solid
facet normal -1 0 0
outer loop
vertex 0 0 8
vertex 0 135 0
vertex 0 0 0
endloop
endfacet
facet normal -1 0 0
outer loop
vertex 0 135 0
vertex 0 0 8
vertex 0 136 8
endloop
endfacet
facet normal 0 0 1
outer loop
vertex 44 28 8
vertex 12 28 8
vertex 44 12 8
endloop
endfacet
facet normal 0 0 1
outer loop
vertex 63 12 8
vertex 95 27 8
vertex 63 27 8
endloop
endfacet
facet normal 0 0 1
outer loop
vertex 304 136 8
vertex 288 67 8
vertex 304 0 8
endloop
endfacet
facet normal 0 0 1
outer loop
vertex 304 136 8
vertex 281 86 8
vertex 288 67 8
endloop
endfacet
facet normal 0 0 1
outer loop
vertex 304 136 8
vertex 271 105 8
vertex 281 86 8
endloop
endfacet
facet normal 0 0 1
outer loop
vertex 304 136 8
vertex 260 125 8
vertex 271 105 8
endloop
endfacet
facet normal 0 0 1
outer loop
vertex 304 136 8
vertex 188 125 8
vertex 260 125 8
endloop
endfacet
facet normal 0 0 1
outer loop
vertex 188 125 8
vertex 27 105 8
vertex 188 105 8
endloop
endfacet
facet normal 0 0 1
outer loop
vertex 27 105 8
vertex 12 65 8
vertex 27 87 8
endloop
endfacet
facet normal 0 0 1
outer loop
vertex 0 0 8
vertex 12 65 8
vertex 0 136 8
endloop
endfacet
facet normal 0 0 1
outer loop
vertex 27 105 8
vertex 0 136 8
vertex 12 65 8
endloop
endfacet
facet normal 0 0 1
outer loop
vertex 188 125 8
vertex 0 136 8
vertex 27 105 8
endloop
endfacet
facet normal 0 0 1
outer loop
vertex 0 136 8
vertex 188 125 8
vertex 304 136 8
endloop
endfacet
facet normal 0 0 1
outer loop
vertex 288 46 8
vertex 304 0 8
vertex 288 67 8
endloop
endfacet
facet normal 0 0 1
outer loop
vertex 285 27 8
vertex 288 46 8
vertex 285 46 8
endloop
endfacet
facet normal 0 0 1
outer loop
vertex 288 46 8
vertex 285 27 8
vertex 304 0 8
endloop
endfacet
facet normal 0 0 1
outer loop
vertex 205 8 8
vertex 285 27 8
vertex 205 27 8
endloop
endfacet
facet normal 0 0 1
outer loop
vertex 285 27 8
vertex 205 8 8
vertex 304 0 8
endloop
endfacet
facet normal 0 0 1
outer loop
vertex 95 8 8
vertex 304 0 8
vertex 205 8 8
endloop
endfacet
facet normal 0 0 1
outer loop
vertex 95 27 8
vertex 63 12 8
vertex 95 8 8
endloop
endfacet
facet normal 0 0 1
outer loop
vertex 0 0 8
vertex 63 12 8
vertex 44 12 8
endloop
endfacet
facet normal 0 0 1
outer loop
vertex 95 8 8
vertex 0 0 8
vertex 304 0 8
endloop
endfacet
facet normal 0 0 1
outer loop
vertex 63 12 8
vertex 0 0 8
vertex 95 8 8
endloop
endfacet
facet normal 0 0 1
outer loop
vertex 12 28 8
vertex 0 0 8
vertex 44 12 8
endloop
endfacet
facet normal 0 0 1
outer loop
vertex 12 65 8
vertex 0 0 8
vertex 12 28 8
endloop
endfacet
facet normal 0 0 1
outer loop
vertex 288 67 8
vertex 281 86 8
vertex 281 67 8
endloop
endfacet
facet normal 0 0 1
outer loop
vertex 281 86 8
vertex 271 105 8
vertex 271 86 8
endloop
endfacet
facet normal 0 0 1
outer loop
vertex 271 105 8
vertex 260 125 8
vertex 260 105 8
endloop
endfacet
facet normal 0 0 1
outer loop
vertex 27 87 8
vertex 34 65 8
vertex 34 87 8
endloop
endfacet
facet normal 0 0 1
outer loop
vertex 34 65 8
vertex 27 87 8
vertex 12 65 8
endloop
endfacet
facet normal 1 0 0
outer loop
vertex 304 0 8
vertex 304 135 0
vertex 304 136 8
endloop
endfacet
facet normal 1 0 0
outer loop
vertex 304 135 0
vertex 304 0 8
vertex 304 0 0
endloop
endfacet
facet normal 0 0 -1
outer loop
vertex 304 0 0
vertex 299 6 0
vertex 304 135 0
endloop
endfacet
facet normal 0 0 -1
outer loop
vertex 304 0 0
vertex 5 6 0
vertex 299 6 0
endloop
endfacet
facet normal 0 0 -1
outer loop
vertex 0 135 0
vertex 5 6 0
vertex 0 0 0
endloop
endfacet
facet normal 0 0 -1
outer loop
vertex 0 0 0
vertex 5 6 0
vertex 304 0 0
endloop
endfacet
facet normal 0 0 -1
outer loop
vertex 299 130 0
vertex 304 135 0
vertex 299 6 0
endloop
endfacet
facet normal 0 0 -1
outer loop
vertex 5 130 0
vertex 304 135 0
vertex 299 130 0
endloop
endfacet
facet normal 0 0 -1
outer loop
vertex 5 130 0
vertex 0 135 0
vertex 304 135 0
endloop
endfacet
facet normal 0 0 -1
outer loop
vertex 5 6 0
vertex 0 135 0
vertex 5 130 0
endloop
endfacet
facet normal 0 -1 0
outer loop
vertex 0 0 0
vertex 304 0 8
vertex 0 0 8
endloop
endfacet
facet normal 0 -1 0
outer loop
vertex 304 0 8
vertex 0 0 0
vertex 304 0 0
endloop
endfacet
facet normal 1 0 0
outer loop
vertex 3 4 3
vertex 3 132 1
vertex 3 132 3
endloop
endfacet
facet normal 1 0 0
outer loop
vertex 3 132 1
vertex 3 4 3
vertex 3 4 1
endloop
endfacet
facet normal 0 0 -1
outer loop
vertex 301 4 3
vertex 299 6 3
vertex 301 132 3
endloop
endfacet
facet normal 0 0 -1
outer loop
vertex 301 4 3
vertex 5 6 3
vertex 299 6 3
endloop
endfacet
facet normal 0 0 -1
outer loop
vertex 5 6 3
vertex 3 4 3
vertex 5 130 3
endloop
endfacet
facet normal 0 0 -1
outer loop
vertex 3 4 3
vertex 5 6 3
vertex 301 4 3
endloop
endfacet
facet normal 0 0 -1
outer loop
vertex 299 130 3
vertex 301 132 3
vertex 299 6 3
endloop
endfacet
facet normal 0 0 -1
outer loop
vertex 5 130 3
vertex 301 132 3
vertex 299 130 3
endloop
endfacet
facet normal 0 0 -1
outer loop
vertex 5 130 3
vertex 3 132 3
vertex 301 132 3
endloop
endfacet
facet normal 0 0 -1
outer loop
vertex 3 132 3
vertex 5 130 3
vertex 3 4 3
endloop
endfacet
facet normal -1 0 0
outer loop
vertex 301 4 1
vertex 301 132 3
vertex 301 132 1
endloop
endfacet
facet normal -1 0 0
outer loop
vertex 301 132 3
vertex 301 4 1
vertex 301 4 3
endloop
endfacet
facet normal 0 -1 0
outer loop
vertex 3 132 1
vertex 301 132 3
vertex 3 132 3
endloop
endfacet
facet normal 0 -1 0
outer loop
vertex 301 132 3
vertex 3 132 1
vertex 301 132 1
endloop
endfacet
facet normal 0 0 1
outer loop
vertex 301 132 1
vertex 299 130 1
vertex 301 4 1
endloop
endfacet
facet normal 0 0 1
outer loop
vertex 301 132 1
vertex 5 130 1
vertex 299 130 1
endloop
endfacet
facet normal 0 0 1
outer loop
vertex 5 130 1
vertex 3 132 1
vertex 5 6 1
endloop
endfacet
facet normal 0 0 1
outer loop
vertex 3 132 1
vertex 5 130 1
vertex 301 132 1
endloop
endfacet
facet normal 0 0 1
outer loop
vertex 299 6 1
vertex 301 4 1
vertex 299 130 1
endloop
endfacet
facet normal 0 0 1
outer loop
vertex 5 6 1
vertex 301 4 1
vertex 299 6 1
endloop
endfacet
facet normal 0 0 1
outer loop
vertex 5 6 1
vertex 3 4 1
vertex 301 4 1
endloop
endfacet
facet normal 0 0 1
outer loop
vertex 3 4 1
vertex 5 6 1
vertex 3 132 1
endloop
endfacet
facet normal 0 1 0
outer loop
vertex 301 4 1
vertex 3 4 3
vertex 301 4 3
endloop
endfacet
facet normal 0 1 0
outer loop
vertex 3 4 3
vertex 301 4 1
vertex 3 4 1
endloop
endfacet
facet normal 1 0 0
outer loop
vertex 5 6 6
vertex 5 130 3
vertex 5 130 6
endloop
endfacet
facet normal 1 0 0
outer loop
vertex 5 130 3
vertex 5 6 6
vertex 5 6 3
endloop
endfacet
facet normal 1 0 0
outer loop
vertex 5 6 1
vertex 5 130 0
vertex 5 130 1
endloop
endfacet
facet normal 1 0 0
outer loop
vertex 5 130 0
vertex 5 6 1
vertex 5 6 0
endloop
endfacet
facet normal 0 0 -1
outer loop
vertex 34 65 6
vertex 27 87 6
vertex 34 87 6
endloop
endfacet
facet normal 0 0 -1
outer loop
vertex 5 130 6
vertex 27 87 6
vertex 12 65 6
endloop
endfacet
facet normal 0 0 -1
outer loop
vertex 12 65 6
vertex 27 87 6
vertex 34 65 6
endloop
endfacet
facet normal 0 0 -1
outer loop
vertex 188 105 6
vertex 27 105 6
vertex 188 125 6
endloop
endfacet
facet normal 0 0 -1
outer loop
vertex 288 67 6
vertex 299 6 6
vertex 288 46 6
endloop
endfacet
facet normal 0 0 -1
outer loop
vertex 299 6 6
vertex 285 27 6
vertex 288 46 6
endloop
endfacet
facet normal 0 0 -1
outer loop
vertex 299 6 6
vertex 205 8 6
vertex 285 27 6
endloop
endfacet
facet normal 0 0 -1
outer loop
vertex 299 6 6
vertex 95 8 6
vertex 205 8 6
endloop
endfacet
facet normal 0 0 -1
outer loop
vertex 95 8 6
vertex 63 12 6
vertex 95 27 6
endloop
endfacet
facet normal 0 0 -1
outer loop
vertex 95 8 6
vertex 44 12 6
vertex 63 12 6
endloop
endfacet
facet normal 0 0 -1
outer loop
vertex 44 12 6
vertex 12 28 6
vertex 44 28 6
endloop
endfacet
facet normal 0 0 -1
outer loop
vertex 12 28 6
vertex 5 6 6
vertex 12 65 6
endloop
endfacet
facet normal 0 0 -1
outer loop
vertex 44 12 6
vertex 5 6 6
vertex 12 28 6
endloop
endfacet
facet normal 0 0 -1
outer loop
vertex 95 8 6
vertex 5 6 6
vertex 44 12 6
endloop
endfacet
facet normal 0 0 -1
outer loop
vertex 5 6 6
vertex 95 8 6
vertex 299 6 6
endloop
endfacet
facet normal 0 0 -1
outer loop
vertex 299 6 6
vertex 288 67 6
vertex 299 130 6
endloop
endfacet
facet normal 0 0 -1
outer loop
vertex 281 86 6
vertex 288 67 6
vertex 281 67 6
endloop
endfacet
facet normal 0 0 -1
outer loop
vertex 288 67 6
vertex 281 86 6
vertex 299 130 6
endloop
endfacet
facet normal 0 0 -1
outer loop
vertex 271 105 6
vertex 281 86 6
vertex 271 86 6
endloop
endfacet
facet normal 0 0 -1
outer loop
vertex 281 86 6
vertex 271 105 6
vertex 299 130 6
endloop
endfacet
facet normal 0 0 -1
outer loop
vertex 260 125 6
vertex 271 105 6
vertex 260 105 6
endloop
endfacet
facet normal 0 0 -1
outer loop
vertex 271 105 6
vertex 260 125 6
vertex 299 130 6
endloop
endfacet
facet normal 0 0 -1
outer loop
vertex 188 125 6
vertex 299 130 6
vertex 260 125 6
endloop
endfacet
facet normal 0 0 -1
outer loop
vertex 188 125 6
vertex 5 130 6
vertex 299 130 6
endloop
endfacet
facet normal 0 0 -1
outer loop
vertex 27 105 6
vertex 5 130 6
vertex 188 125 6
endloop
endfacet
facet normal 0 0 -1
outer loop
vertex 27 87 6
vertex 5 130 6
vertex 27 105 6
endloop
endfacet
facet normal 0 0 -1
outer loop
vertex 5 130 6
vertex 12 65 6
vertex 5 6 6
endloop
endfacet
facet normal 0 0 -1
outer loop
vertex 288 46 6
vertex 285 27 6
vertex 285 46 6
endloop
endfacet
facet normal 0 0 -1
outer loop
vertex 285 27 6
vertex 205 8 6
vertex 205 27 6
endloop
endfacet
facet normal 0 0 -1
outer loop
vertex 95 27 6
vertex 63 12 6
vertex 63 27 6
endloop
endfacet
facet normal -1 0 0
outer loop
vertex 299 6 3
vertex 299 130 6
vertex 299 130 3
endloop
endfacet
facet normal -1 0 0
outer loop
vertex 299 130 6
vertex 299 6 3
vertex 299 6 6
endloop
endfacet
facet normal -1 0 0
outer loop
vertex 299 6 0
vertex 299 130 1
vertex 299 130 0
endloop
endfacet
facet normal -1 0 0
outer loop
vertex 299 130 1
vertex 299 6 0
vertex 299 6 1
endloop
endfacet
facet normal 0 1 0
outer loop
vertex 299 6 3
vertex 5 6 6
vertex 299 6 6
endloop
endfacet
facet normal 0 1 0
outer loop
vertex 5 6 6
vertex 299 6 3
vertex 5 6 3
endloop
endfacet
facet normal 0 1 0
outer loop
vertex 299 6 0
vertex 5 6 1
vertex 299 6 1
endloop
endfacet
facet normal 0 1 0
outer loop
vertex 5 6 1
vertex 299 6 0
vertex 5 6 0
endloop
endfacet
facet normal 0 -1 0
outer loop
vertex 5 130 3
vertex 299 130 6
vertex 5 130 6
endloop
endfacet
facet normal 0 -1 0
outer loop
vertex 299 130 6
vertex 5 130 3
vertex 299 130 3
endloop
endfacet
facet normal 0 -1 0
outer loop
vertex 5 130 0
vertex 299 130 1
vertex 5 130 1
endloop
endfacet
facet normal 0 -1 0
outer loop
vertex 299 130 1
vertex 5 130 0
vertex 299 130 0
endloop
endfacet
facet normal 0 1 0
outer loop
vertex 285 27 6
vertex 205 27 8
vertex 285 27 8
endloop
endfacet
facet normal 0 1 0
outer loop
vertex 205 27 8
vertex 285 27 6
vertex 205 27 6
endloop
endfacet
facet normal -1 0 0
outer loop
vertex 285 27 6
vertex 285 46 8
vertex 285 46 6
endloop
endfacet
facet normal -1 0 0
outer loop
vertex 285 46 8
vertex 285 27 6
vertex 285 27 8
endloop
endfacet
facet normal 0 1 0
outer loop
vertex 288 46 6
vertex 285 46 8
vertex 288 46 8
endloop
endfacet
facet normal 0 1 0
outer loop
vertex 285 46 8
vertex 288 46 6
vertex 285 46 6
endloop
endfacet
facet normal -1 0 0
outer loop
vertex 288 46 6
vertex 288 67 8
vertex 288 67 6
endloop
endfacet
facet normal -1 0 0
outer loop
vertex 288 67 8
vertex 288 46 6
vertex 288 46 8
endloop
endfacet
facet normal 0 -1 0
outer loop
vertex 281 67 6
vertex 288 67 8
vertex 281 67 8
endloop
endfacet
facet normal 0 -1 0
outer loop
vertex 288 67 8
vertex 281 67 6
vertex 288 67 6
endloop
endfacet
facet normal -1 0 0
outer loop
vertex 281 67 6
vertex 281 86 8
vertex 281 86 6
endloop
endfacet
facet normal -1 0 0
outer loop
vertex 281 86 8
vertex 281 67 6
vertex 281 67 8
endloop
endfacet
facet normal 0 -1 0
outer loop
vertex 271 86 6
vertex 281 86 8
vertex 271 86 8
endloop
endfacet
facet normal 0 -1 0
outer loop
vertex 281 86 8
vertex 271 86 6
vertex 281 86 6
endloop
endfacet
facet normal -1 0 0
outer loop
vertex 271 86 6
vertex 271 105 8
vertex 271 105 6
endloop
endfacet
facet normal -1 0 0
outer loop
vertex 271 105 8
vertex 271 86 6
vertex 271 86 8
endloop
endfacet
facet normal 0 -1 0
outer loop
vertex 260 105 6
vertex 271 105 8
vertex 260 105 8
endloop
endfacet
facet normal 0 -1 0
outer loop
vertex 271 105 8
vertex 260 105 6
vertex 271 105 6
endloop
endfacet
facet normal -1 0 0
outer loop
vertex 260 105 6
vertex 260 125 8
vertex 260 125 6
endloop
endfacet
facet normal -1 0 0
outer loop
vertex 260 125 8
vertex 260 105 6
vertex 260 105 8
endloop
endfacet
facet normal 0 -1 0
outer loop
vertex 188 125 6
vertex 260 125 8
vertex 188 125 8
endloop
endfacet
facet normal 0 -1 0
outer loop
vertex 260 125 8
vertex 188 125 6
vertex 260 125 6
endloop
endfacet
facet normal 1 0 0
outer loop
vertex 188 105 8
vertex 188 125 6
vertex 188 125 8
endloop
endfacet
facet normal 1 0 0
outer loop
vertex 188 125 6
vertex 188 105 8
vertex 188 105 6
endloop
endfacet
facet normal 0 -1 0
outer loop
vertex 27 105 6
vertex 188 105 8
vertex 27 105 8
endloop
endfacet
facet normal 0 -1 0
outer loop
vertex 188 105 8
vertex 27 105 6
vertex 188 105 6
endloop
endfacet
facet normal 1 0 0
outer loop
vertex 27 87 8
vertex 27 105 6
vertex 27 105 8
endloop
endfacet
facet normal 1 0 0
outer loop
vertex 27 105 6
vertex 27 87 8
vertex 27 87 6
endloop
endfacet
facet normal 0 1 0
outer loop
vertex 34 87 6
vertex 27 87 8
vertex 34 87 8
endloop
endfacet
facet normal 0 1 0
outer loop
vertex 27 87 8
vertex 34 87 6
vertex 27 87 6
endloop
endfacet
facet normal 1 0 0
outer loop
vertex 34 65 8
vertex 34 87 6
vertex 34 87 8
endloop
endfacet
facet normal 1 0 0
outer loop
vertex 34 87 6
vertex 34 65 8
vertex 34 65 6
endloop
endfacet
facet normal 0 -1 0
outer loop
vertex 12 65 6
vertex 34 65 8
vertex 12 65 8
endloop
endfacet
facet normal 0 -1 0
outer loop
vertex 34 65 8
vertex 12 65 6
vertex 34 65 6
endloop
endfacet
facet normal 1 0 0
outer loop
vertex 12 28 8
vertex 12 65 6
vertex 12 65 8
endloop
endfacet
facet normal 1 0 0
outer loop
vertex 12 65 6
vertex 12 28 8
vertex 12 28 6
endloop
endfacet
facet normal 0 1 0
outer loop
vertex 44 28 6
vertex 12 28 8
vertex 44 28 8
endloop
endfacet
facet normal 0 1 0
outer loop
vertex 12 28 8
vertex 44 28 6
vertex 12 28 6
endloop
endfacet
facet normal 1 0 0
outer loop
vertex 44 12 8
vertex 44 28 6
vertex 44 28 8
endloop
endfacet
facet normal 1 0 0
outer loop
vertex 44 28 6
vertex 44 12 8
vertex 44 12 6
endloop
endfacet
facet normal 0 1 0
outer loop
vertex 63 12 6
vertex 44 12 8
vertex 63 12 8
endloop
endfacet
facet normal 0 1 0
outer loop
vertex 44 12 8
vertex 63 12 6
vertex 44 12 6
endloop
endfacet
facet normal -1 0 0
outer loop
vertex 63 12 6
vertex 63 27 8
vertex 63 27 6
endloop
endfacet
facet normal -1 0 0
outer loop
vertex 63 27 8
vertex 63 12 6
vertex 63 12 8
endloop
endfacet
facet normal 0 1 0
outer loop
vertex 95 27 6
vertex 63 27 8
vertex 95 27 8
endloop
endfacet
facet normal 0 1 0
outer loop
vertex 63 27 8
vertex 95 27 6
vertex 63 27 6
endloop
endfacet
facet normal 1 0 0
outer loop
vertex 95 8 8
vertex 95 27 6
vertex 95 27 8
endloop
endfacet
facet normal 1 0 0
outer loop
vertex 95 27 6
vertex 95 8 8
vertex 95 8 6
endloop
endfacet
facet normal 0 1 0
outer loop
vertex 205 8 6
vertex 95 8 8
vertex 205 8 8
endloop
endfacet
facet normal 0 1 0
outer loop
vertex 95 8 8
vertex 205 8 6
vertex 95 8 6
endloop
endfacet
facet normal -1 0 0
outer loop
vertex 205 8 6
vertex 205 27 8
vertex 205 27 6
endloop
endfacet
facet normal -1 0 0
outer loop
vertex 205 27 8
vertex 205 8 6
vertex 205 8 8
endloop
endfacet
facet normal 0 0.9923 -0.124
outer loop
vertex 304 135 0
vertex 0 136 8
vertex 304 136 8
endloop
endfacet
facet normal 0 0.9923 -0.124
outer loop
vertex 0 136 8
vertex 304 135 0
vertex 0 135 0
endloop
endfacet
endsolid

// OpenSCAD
// tomy tutor keyboard frame

zz = 8;
iz = 2;
yy = 136;
iy = 128;
xx = 304;
ix = 298;

difference() {
cube([xx, yy, zz],false);

// cut out pcboard 
translate([(xx-ix)/2, (yy-iy)/2, 1])
cube([ix, iy, iz],false);
    
// 
translate([2+((xx-ix)/2), 2+((yy-iy)/2), 0])
cube([ix-4, iy-4, 3*iz],false);

// cut outline of keyboard keys
translate([(xx-ix)/2, (yy-iy)/2,-1])    
linear_extrude(height=10,center=false)
polygon([[9,24], [41,24], [41,8], [60,8], [60,23], [92,23], [92,4], [202,4], [202,23], 
    [249,23], [282,23], [282,42], [285,42], [285,63], [278,63], [278,82],
    [268,82], [268,101], [257,101], [257,121], [185,121],
    [185,101], [24,101], [24, 83], [31, 83], [31,61], [9,61], [9,44]]);

// remove angled edge 1mm at bottom
translate([-1,yy,0])
rotate([0,90,0])
linear_extrude(height=310,center=false)    
polygon([[0,0],[0,-1],[-8,0]]);
}
